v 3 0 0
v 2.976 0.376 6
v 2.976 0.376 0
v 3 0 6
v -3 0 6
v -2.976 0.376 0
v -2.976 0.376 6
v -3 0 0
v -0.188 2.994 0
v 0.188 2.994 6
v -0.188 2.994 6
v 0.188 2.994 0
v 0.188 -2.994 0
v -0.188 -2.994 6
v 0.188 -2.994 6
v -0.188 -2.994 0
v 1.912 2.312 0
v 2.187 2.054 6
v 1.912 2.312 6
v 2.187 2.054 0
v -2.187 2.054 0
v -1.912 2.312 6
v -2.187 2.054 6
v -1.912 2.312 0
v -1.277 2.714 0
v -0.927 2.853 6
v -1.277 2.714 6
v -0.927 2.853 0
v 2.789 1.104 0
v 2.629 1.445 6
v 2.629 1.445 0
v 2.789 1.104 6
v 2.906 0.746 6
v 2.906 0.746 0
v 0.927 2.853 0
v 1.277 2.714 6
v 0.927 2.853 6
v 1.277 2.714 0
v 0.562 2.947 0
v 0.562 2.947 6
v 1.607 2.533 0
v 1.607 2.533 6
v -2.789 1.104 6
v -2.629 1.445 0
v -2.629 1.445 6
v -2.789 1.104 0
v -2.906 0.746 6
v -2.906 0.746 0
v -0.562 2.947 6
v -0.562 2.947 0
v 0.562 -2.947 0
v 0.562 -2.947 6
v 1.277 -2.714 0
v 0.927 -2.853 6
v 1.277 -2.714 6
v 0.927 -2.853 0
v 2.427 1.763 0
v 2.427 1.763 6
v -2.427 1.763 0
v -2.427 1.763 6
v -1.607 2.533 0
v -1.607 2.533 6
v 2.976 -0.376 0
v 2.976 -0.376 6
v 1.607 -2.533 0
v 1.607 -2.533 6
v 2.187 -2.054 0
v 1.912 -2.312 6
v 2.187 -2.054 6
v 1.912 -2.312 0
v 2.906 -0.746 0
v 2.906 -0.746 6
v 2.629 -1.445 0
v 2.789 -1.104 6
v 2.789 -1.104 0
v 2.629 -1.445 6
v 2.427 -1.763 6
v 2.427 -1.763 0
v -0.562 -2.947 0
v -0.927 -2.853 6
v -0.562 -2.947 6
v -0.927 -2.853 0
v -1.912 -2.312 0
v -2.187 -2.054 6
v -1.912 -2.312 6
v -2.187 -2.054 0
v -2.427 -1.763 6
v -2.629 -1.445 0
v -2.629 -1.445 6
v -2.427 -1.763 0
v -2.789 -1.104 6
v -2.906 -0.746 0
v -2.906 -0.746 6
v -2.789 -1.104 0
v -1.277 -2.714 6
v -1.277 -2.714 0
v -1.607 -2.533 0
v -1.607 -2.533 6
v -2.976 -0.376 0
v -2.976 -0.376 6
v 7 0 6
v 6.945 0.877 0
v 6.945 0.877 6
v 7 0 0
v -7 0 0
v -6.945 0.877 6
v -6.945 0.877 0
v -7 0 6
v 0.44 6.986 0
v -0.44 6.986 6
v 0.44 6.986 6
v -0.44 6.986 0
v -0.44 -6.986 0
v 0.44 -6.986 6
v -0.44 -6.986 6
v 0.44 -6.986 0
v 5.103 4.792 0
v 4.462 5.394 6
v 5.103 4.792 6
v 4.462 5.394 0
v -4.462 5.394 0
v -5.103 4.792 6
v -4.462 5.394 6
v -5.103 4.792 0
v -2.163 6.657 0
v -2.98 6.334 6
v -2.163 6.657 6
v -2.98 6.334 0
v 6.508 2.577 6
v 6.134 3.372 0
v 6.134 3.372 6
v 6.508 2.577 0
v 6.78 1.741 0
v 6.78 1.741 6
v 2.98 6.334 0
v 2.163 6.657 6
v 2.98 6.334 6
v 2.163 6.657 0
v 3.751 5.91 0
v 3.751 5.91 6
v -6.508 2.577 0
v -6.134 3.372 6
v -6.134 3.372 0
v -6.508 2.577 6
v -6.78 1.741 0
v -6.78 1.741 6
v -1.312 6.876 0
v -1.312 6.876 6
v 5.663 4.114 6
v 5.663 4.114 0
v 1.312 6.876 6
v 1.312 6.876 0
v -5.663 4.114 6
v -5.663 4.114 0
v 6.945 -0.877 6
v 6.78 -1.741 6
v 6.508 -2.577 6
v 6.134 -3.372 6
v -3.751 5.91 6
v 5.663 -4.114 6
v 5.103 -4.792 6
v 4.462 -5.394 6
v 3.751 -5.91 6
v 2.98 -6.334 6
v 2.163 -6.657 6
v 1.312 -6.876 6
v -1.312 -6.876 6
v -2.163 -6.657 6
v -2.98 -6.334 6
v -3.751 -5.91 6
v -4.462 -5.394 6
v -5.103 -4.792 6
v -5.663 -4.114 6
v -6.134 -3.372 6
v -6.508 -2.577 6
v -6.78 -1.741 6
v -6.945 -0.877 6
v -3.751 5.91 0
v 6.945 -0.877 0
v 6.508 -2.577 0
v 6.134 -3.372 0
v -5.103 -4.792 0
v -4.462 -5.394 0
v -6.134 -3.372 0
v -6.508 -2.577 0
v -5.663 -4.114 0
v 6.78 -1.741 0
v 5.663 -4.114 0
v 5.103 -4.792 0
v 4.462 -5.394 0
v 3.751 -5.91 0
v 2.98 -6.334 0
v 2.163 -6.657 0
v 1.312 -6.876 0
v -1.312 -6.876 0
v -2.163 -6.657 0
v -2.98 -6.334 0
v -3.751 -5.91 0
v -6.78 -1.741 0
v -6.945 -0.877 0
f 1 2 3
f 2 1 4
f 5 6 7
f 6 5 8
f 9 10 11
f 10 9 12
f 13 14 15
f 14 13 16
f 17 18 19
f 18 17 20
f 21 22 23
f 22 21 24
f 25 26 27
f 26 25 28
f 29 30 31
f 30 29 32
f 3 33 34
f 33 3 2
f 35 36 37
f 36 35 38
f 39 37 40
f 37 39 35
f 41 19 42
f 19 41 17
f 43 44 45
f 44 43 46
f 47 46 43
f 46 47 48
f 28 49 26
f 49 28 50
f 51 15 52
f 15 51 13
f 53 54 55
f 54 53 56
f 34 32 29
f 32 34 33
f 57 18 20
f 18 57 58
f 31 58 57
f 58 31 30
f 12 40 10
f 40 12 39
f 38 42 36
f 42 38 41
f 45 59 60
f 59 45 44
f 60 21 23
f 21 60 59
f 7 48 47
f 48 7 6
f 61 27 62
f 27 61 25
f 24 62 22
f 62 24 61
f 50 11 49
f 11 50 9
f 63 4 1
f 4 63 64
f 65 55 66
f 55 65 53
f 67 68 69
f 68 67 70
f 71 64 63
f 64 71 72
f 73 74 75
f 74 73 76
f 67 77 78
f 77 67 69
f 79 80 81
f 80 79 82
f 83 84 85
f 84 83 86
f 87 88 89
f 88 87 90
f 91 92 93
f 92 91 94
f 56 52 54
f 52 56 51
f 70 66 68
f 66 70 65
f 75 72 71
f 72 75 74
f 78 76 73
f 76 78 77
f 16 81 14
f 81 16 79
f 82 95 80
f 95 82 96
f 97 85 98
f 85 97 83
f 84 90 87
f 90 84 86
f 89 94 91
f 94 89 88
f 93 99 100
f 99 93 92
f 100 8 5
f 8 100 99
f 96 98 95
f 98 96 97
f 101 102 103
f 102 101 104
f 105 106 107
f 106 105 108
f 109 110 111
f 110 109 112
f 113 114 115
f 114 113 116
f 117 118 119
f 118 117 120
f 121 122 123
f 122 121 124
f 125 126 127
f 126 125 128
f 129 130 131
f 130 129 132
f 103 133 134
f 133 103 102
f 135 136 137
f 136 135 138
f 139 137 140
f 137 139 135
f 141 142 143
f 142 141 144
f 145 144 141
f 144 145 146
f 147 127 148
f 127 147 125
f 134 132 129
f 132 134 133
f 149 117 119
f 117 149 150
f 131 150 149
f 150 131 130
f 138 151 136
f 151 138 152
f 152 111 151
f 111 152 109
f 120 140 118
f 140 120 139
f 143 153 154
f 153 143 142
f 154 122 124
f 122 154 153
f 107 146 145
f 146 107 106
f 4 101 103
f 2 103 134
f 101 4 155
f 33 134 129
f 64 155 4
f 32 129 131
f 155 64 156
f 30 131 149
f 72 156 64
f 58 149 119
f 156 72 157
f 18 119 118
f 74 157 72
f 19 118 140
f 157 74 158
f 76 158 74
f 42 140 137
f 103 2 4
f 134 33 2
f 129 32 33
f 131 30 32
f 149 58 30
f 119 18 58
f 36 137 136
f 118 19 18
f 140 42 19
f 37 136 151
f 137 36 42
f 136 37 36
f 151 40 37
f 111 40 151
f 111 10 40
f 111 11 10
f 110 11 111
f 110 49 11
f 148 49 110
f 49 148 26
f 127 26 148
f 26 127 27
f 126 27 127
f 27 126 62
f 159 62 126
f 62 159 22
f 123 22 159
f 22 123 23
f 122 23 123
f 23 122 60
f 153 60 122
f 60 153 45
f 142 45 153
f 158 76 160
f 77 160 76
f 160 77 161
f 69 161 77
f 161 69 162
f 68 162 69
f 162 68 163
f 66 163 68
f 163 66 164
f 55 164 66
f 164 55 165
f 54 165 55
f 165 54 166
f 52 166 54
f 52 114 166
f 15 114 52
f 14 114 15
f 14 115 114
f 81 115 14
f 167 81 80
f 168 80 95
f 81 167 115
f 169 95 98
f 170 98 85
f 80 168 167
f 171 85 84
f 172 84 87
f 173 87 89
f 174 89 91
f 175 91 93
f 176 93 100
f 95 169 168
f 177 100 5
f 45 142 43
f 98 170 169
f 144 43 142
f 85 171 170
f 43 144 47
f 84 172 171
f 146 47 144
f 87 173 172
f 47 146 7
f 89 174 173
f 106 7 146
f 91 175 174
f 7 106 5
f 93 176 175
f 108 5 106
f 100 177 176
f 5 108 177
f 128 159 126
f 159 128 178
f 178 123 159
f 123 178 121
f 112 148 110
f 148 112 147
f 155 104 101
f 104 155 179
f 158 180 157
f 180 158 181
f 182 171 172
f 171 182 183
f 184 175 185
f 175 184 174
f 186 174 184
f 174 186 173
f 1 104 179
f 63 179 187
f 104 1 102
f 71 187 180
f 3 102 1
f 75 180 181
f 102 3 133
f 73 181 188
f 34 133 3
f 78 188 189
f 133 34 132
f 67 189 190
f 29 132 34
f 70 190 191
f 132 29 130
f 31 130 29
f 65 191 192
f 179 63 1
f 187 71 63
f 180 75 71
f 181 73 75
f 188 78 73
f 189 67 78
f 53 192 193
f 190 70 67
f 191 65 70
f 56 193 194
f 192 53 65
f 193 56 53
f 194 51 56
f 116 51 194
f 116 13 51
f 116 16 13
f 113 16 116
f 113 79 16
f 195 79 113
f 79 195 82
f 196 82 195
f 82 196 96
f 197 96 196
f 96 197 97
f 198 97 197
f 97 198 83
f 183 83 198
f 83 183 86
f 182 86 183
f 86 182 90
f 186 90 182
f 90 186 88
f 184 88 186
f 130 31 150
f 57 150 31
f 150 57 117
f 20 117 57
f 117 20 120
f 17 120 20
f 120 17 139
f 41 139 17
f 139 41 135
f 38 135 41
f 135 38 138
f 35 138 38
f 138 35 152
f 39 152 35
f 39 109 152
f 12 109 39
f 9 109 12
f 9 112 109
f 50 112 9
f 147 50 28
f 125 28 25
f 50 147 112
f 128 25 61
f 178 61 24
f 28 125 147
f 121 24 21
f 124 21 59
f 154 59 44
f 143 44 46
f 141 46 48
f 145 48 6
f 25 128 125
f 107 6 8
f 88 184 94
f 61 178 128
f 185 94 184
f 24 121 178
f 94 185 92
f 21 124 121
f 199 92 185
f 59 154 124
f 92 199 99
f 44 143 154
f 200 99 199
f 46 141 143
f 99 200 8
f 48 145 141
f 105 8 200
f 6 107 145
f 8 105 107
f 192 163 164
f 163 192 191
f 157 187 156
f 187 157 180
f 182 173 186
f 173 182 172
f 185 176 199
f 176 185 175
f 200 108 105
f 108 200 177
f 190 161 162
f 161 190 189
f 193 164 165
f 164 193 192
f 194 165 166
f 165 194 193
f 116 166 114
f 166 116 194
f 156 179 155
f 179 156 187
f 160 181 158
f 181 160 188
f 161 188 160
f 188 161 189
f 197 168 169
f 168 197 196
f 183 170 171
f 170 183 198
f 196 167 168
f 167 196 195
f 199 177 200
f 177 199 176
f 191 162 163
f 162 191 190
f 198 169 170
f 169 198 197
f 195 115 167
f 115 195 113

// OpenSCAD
$fn = 50;


difference() {
	union() {
		cylinder(h = 6, r = 7.0000000000);
	}
	union() {
		translate(v = [0, 0, -100]) {
			cylinder(h = 200, r = 3.0000000000);
		}
		translate(v = [0, 0, -100]) {
			cylinder(h = 200, r = 1.5000000000);
		}
	}
}
